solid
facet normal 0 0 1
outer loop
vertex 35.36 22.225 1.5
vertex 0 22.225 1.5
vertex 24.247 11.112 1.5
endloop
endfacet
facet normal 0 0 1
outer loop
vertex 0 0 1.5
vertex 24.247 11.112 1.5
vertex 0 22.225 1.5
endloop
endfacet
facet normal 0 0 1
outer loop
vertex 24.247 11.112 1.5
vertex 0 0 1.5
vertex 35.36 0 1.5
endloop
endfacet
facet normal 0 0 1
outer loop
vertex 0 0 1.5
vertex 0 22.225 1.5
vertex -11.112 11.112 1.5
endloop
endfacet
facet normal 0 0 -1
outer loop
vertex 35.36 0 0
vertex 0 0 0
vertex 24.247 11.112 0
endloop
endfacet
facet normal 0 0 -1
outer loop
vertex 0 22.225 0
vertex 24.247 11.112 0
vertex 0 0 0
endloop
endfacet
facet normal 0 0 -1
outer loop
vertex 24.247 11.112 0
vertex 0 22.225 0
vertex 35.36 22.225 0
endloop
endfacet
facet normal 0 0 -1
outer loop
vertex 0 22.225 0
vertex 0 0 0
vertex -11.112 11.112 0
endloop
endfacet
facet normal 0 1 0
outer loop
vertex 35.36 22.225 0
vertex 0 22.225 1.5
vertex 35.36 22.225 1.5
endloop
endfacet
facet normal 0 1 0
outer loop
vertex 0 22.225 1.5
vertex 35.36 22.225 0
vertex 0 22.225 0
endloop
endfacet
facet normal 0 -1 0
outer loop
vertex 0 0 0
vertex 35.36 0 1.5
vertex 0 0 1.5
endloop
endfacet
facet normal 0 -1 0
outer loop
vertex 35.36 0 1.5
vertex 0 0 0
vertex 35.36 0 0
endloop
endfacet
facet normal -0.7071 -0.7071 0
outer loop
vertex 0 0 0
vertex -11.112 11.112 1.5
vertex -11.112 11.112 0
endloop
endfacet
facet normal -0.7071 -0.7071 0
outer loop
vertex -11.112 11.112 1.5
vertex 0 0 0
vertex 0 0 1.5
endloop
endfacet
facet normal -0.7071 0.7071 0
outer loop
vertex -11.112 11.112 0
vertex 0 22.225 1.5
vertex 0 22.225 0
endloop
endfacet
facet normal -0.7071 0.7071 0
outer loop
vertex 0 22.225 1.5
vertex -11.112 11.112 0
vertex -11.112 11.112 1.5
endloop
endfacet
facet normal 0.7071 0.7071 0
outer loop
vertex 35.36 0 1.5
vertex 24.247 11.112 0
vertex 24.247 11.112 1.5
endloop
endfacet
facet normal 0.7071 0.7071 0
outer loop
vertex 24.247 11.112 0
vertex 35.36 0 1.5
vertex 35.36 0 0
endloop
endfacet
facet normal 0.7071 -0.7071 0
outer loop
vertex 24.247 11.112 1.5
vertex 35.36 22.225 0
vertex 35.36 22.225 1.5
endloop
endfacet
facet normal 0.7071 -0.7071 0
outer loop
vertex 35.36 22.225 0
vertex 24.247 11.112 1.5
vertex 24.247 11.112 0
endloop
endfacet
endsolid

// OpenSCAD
$tileH = 22.225 ;
$m = $tileH / 10;
$c = sqrt(pow($tileH, 2)/2);
$d = .75;
$fn = 3;
$links = 8;

difference() {
union() {
translate([0, 0, 0]) {
    cube([$tileH*$links/4, $tileH, $d*2]);
}
for (i = [0:$links]) {
     translate([i * $c/4, 0, 0]) {
        rotate([0, 0, 45]) {
            if (i==0) {
                cube([$c, $c, 1.5]);
            } else {
               // cube([$c, $c, $d]);
            }
        }
        if (i < $links-1) {
            translate([-$tileH/4, $tileH/2-$m/2, $d*i]) {
       //  rotate([0, 50, 0]) {
        //    cube([$m, $m, $m *2]);
        //}
      }
  }
     }
}

}

translate([($links+1) * $c/4, 0, -2]) {
        rotate([0, 0, 45]) {
            cube([$c, $c, $d * ($links+1)*2]);
        }
     }
translate([($links+1) * $c/4, -$c, -2]) {
            cube([$c*3, $c*3, $d * 25]);
     }
translate([-$tileH, 0, -$d*3]) {
    cube([$tileH*$links/2, $tileH, $d*3]);
}
}

 
